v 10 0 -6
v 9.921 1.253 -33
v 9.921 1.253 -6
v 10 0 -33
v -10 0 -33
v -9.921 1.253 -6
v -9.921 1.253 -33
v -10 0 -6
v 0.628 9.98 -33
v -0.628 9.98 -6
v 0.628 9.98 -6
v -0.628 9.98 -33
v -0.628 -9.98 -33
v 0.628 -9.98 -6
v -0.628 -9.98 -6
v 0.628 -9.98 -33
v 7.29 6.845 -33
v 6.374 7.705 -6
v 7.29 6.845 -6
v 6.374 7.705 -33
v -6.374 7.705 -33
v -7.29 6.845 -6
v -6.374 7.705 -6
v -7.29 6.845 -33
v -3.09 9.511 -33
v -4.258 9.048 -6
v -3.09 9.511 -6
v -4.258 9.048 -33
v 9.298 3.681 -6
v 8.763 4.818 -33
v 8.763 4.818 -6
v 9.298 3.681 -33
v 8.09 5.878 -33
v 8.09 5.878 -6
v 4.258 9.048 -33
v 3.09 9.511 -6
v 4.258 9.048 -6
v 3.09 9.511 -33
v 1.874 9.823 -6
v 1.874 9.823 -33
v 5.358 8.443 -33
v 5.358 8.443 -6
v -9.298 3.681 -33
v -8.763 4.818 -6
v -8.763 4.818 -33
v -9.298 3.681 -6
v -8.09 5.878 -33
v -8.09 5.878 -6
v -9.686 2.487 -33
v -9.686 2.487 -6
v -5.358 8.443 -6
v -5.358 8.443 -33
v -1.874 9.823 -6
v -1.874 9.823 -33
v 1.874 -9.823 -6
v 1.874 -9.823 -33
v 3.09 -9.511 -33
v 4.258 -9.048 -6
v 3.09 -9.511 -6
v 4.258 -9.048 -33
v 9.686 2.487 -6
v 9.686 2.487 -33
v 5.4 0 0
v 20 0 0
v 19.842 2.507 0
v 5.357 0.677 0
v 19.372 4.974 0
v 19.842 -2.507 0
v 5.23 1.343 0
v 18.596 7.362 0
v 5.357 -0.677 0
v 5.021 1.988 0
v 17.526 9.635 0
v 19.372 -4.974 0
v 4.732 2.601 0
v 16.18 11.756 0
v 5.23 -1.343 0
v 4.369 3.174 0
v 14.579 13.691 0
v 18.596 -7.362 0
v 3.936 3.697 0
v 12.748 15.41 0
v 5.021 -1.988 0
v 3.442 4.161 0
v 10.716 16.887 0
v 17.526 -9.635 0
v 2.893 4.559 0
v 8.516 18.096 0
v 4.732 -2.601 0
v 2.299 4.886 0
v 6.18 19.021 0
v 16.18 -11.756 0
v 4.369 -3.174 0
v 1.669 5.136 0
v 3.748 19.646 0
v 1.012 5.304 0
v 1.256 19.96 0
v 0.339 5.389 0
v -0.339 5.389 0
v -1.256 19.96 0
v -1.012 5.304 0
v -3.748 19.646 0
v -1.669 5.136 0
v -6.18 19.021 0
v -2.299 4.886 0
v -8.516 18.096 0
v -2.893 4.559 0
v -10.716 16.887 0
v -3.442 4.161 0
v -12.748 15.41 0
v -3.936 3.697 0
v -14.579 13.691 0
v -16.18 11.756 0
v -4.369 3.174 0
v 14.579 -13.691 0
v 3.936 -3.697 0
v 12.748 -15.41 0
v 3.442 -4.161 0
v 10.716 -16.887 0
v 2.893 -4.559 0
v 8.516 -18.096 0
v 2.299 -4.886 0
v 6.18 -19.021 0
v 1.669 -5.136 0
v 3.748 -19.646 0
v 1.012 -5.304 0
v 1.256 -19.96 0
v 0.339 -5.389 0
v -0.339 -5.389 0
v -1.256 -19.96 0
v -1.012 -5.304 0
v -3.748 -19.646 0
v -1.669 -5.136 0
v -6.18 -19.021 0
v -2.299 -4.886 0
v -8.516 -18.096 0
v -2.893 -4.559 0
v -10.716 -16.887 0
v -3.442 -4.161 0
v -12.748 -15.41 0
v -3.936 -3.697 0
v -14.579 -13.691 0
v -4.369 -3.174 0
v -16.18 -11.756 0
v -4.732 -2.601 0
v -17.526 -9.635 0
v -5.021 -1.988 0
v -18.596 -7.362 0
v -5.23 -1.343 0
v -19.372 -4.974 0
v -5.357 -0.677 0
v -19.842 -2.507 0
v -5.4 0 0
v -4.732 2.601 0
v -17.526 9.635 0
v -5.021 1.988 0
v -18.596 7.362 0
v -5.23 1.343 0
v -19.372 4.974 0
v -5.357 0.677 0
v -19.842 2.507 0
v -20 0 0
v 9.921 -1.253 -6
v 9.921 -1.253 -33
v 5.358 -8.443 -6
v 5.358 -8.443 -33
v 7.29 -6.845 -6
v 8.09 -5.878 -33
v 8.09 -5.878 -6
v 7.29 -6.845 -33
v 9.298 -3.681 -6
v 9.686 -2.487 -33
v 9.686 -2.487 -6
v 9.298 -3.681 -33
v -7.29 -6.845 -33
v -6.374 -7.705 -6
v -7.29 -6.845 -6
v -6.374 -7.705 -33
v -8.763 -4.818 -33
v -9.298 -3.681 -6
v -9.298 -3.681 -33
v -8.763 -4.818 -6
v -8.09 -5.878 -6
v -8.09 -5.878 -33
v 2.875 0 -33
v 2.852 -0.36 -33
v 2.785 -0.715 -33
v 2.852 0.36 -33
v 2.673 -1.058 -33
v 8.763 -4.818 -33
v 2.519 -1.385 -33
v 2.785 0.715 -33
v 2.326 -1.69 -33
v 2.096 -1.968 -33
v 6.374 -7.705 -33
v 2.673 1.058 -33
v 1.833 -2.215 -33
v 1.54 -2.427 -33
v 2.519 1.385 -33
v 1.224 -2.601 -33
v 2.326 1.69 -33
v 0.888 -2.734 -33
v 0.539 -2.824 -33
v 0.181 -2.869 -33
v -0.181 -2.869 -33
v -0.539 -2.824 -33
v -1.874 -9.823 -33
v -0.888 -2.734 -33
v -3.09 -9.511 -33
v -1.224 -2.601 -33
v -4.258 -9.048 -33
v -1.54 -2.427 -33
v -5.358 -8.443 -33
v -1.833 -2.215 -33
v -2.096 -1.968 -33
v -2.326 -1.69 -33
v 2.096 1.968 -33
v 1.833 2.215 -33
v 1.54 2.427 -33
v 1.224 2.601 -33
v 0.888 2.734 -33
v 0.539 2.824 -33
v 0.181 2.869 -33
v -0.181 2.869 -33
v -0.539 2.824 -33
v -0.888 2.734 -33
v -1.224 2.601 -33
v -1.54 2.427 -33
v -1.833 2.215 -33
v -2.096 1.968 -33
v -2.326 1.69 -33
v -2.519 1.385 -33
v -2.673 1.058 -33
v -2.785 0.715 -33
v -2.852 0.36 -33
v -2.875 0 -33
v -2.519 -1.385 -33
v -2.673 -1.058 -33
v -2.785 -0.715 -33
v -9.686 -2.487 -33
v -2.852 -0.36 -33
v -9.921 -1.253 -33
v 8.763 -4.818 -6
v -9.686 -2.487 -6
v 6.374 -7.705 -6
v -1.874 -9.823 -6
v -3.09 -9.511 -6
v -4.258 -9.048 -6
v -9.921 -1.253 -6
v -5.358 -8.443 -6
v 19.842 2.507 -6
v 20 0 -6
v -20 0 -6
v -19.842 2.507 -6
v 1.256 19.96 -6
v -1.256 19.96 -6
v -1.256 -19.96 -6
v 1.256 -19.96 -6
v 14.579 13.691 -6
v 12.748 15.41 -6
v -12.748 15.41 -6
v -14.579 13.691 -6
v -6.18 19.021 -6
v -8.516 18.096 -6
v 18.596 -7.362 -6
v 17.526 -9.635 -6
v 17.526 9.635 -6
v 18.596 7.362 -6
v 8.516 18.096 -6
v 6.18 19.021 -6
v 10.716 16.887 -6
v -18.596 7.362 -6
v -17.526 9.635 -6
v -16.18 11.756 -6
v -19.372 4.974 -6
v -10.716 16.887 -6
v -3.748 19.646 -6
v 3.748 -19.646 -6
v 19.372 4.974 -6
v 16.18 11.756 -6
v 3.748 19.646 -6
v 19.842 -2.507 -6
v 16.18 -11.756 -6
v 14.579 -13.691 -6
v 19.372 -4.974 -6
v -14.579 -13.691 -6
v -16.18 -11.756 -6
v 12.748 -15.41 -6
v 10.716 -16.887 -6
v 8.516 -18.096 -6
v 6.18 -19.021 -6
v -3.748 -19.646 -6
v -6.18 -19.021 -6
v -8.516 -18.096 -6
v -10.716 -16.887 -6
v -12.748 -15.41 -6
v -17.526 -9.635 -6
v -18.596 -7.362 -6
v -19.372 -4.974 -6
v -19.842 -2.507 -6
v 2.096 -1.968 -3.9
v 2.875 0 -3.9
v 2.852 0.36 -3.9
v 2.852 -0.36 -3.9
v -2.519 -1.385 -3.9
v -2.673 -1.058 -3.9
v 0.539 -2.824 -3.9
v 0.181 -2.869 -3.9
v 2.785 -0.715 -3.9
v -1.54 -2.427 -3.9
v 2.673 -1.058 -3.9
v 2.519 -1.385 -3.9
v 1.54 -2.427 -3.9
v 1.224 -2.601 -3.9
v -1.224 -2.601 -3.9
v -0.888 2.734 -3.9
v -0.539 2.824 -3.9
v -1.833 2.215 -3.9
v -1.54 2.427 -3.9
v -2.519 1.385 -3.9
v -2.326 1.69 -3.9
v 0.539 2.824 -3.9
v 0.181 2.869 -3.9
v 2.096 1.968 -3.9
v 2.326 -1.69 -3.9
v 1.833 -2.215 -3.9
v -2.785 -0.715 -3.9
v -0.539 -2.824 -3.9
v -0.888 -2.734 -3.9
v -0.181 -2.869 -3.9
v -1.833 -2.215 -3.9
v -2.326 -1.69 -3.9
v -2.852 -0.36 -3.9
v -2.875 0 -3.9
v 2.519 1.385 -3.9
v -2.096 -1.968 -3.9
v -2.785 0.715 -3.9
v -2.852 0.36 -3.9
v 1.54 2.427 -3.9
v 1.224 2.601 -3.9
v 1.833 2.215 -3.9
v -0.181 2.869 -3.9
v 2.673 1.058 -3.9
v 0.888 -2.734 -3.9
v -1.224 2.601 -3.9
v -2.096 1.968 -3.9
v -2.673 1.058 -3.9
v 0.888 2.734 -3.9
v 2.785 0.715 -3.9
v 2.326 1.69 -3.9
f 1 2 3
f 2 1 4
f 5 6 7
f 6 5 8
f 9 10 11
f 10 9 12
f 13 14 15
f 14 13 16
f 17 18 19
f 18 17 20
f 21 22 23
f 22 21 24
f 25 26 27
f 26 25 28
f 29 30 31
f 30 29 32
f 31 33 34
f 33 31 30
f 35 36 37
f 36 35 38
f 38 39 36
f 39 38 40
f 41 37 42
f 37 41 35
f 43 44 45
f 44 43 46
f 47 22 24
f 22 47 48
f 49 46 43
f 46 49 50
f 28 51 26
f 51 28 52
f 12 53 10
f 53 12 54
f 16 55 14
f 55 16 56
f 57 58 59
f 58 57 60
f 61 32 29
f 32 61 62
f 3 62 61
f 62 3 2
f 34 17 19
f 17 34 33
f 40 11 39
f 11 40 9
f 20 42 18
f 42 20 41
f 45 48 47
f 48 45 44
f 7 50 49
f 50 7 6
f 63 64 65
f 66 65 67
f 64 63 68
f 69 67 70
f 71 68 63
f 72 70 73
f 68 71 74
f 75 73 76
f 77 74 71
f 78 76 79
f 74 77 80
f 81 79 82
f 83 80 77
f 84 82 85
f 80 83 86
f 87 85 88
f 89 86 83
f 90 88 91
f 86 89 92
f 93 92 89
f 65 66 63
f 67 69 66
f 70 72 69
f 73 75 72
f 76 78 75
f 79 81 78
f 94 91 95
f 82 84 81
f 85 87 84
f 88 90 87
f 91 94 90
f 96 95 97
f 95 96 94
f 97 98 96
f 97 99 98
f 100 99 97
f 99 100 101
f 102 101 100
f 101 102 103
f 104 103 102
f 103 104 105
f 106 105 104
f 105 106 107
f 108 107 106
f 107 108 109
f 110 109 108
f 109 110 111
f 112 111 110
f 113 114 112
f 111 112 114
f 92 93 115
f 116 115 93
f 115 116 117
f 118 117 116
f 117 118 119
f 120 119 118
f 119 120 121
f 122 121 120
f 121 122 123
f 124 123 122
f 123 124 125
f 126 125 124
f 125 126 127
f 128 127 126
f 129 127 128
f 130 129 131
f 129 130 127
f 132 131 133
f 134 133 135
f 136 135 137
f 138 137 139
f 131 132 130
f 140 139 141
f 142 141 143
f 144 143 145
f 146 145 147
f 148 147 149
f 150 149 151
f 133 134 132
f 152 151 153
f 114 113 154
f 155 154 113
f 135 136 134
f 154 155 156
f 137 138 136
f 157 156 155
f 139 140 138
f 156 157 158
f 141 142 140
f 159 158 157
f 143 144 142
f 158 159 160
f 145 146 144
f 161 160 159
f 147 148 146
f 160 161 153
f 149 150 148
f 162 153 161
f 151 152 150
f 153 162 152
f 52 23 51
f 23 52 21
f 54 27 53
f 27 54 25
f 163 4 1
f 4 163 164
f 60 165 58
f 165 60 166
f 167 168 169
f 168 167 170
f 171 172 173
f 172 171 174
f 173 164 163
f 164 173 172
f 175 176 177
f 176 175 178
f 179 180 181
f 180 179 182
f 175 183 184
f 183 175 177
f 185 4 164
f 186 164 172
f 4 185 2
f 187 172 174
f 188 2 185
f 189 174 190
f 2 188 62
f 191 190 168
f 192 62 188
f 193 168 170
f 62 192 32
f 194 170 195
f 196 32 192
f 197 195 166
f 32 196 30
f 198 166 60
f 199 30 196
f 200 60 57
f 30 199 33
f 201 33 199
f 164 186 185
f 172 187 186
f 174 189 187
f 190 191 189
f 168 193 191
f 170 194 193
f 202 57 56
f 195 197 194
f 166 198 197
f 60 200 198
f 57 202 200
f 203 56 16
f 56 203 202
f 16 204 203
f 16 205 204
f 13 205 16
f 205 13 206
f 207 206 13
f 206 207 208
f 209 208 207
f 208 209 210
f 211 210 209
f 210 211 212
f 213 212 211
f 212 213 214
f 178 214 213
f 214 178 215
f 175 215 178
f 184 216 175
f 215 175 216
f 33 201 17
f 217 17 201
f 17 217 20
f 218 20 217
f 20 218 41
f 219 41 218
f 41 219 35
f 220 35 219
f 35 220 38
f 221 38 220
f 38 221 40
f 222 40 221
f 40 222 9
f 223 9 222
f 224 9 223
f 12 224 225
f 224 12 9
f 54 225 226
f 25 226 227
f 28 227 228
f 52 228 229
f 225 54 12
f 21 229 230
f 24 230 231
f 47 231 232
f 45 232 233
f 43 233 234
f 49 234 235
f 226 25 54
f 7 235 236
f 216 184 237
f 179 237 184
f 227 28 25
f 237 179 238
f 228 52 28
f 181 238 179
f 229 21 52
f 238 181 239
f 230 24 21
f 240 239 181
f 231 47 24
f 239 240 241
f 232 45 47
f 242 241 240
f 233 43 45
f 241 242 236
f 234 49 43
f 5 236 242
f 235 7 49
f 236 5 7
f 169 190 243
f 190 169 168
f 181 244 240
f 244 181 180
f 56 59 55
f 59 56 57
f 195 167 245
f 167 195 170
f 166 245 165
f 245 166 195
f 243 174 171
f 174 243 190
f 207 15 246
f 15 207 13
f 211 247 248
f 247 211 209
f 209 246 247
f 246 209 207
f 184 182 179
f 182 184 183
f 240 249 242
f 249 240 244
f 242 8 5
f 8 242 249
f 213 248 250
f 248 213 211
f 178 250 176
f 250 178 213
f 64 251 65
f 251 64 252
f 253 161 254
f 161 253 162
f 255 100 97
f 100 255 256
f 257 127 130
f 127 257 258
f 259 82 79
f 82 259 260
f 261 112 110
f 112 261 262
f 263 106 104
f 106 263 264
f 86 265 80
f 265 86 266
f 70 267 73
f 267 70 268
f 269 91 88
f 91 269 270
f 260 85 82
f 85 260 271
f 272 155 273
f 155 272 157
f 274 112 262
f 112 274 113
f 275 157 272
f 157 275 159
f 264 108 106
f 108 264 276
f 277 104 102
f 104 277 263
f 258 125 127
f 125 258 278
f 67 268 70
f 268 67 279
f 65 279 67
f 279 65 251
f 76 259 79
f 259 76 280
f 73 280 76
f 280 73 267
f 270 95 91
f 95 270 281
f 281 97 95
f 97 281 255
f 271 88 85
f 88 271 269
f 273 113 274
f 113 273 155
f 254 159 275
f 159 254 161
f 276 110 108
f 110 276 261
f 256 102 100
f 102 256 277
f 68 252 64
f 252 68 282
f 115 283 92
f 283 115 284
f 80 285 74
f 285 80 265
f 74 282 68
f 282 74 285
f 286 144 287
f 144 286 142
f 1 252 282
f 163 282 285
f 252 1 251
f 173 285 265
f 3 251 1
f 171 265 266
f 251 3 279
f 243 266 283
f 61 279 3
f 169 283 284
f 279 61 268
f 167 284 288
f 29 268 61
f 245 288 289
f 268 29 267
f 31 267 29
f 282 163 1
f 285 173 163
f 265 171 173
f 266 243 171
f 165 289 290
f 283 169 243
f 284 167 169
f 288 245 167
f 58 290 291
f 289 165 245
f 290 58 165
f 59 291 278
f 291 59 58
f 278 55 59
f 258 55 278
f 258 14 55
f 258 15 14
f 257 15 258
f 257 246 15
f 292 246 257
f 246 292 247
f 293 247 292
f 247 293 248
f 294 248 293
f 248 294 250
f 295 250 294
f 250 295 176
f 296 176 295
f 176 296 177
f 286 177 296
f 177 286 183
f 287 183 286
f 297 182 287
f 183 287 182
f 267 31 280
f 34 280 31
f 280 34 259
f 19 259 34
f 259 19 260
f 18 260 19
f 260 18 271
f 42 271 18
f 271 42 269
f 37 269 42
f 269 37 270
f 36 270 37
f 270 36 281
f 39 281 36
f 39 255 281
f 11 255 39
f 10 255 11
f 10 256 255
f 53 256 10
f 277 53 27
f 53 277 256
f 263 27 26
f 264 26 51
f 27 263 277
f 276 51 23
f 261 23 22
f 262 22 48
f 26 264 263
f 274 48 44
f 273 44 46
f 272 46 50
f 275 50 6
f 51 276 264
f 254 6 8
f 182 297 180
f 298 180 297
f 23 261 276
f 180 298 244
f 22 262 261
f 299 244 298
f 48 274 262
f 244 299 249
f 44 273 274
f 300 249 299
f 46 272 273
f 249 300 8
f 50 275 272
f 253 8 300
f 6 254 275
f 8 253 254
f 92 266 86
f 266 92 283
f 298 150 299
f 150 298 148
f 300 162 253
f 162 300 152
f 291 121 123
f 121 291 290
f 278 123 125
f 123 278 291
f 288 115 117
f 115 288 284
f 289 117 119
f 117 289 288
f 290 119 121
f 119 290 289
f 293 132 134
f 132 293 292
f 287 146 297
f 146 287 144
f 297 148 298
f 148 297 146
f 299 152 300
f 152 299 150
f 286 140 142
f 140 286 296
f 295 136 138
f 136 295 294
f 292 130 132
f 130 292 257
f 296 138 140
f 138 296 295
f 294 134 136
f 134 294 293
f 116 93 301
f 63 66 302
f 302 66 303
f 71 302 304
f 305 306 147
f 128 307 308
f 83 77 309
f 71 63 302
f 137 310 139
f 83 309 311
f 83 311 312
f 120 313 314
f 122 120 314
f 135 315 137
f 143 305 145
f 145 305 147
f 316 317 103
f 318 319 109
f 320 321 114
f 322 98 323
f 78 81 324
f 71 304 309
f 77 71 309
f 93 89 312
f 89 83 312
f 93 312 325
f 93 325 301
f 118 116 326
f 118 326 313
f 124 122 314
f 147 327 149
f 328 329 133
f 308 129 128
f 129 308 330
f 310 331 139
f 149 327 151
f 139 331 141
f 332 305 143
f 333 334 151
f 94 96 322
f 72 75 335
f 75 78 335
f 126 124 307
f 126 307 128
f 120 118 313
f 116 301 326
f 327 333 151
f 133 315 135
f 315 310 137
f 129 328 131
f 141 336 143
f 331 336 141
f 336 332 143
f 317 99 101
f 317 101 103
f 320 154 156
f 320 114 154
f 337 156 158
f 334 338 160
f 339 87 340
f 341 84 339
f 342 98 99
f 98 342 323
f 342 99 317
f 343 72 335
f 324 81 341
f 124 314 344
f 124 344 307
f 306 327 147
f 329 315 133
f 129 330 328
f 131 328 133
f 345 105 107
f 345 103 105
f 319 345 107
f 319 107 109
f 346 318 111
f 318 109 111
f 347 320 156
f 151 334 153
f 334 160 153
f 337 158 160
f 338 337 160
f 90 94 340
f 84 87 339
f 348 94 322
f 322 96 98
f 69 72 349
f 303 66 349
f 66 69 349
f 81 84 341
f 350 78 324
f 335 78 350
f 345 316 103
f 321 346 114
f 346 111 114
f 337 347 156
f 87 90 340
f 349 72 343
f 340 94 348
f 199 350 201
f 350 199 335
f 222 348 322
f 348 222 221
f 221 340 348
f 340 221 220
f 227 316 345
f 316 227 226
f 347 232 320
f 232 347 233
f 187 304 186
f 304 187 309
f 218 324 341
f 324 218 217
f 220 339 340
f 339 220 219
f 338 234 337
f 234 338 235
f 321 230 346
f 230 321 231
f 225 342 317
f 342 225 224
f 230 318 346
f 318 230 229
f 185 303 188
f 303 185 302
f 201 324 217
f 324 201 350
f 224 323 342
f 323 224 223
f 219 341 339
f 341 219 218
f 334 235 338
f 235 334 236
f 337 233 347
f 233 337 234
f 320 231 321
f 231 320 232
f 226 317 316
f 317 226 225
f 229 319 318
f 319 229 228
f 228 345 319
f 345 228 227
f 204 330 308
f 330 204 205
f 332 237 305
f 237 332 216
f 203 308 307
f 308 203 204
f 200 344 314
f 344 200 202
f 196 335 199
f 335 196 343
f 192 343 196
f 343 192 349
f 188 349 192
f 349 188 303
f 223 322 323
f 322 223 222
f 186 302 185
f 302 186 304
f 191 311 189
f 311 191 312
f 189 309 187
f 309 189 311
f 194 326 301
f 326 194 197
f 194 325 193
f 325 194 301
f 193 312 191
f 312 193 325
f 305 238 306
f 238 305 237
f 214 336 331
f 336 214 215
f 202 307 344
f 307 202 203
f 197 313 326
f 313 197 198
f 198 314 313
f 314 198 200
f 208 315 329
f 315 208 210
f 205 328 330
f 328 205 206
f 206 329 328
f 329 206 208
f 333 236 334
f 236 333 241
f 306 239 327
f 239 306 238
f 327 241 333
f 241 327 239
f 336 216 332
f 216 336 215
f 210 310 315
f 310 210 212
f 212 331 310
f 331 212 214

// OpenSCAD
$fn = 50;


difference() {
	union() {
		translate(v = [0, 0, -33.0000000000]) {
			cylinder(h = 33, r = 10.0000000000);
		}
		translate(v = [0, 0, -6.0000000000]) {
			cylinder(h = 6, r = 20.0000000000);
		}
	}
	union() {
		translate(v = [0, 0, 0]) {
			rotate(a = [0, 0, 0]) {
				difference() {
					union() {
						#translate(v = [0, 0, -33.0000000000]) {
							cylinder(h = 33, r = 2.6000000000);
						}
						#translate(v = [0, 0, -3.9000000000]) {
							cylinder(h = 3.9000000000, r = 10.0000000000, r1 = 2.8750000000, r2 = 5.4000000000);
						}
						#translate(v = [0, 0, -33.0000000000]) {
							cylinder(h = 33, r = 2.8750000000);
						}
						#translate(v = [0, 0, -33.0000000000]) {
							cylinder(h = 33, r = 2.6000000000);
						}
					}
					union();
				}
			}
		}
	}
}
